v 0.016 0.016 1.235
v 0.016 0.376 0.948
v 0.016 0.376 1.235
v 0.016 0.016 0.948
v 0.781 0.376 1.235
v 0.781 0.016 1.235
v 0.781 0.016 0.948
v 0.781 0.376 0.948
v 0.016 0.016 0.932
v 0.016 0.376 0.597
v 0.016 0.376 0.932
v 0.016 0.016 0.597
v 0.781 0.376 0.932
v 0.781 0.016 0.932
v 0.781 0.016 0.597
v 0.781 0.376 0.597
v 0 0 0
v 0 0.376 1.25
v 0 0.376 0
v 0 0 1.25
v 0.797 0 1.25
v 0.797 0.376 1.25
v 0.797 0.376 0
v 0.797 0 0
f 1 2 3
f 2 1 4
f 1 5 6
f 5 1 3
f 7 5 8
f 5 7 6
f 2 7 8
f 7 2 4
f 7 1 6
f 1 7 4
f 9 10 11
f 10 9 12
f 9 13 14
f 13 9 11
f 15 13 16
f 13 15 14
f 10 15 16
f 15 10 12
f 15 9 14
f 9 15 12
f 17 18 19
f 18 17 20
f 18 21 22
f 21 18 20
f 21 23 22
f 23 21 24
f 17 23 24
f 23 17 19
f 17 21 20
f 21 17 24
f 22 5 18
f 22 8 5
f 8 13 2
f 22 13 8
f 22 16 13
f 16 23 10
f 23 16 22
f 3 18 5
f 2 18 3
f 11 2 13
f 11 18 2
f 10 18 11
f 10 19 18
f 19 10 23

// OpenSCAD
difference(){
    cube(size=[0.765+0.016*2 ,0.36+0.016, 1.25], center = false);
    
    union(){
        translate([0.016,0.016,1.235-0.287]){
            cube([0.765,0.5, 0.287], center=false);
            };
        translate([0.016,0.016,1.235-0.287-0.335-0.016]){
            cube([0.765,0.5, 0.335], center=false);
            };
    
    };
};
    
